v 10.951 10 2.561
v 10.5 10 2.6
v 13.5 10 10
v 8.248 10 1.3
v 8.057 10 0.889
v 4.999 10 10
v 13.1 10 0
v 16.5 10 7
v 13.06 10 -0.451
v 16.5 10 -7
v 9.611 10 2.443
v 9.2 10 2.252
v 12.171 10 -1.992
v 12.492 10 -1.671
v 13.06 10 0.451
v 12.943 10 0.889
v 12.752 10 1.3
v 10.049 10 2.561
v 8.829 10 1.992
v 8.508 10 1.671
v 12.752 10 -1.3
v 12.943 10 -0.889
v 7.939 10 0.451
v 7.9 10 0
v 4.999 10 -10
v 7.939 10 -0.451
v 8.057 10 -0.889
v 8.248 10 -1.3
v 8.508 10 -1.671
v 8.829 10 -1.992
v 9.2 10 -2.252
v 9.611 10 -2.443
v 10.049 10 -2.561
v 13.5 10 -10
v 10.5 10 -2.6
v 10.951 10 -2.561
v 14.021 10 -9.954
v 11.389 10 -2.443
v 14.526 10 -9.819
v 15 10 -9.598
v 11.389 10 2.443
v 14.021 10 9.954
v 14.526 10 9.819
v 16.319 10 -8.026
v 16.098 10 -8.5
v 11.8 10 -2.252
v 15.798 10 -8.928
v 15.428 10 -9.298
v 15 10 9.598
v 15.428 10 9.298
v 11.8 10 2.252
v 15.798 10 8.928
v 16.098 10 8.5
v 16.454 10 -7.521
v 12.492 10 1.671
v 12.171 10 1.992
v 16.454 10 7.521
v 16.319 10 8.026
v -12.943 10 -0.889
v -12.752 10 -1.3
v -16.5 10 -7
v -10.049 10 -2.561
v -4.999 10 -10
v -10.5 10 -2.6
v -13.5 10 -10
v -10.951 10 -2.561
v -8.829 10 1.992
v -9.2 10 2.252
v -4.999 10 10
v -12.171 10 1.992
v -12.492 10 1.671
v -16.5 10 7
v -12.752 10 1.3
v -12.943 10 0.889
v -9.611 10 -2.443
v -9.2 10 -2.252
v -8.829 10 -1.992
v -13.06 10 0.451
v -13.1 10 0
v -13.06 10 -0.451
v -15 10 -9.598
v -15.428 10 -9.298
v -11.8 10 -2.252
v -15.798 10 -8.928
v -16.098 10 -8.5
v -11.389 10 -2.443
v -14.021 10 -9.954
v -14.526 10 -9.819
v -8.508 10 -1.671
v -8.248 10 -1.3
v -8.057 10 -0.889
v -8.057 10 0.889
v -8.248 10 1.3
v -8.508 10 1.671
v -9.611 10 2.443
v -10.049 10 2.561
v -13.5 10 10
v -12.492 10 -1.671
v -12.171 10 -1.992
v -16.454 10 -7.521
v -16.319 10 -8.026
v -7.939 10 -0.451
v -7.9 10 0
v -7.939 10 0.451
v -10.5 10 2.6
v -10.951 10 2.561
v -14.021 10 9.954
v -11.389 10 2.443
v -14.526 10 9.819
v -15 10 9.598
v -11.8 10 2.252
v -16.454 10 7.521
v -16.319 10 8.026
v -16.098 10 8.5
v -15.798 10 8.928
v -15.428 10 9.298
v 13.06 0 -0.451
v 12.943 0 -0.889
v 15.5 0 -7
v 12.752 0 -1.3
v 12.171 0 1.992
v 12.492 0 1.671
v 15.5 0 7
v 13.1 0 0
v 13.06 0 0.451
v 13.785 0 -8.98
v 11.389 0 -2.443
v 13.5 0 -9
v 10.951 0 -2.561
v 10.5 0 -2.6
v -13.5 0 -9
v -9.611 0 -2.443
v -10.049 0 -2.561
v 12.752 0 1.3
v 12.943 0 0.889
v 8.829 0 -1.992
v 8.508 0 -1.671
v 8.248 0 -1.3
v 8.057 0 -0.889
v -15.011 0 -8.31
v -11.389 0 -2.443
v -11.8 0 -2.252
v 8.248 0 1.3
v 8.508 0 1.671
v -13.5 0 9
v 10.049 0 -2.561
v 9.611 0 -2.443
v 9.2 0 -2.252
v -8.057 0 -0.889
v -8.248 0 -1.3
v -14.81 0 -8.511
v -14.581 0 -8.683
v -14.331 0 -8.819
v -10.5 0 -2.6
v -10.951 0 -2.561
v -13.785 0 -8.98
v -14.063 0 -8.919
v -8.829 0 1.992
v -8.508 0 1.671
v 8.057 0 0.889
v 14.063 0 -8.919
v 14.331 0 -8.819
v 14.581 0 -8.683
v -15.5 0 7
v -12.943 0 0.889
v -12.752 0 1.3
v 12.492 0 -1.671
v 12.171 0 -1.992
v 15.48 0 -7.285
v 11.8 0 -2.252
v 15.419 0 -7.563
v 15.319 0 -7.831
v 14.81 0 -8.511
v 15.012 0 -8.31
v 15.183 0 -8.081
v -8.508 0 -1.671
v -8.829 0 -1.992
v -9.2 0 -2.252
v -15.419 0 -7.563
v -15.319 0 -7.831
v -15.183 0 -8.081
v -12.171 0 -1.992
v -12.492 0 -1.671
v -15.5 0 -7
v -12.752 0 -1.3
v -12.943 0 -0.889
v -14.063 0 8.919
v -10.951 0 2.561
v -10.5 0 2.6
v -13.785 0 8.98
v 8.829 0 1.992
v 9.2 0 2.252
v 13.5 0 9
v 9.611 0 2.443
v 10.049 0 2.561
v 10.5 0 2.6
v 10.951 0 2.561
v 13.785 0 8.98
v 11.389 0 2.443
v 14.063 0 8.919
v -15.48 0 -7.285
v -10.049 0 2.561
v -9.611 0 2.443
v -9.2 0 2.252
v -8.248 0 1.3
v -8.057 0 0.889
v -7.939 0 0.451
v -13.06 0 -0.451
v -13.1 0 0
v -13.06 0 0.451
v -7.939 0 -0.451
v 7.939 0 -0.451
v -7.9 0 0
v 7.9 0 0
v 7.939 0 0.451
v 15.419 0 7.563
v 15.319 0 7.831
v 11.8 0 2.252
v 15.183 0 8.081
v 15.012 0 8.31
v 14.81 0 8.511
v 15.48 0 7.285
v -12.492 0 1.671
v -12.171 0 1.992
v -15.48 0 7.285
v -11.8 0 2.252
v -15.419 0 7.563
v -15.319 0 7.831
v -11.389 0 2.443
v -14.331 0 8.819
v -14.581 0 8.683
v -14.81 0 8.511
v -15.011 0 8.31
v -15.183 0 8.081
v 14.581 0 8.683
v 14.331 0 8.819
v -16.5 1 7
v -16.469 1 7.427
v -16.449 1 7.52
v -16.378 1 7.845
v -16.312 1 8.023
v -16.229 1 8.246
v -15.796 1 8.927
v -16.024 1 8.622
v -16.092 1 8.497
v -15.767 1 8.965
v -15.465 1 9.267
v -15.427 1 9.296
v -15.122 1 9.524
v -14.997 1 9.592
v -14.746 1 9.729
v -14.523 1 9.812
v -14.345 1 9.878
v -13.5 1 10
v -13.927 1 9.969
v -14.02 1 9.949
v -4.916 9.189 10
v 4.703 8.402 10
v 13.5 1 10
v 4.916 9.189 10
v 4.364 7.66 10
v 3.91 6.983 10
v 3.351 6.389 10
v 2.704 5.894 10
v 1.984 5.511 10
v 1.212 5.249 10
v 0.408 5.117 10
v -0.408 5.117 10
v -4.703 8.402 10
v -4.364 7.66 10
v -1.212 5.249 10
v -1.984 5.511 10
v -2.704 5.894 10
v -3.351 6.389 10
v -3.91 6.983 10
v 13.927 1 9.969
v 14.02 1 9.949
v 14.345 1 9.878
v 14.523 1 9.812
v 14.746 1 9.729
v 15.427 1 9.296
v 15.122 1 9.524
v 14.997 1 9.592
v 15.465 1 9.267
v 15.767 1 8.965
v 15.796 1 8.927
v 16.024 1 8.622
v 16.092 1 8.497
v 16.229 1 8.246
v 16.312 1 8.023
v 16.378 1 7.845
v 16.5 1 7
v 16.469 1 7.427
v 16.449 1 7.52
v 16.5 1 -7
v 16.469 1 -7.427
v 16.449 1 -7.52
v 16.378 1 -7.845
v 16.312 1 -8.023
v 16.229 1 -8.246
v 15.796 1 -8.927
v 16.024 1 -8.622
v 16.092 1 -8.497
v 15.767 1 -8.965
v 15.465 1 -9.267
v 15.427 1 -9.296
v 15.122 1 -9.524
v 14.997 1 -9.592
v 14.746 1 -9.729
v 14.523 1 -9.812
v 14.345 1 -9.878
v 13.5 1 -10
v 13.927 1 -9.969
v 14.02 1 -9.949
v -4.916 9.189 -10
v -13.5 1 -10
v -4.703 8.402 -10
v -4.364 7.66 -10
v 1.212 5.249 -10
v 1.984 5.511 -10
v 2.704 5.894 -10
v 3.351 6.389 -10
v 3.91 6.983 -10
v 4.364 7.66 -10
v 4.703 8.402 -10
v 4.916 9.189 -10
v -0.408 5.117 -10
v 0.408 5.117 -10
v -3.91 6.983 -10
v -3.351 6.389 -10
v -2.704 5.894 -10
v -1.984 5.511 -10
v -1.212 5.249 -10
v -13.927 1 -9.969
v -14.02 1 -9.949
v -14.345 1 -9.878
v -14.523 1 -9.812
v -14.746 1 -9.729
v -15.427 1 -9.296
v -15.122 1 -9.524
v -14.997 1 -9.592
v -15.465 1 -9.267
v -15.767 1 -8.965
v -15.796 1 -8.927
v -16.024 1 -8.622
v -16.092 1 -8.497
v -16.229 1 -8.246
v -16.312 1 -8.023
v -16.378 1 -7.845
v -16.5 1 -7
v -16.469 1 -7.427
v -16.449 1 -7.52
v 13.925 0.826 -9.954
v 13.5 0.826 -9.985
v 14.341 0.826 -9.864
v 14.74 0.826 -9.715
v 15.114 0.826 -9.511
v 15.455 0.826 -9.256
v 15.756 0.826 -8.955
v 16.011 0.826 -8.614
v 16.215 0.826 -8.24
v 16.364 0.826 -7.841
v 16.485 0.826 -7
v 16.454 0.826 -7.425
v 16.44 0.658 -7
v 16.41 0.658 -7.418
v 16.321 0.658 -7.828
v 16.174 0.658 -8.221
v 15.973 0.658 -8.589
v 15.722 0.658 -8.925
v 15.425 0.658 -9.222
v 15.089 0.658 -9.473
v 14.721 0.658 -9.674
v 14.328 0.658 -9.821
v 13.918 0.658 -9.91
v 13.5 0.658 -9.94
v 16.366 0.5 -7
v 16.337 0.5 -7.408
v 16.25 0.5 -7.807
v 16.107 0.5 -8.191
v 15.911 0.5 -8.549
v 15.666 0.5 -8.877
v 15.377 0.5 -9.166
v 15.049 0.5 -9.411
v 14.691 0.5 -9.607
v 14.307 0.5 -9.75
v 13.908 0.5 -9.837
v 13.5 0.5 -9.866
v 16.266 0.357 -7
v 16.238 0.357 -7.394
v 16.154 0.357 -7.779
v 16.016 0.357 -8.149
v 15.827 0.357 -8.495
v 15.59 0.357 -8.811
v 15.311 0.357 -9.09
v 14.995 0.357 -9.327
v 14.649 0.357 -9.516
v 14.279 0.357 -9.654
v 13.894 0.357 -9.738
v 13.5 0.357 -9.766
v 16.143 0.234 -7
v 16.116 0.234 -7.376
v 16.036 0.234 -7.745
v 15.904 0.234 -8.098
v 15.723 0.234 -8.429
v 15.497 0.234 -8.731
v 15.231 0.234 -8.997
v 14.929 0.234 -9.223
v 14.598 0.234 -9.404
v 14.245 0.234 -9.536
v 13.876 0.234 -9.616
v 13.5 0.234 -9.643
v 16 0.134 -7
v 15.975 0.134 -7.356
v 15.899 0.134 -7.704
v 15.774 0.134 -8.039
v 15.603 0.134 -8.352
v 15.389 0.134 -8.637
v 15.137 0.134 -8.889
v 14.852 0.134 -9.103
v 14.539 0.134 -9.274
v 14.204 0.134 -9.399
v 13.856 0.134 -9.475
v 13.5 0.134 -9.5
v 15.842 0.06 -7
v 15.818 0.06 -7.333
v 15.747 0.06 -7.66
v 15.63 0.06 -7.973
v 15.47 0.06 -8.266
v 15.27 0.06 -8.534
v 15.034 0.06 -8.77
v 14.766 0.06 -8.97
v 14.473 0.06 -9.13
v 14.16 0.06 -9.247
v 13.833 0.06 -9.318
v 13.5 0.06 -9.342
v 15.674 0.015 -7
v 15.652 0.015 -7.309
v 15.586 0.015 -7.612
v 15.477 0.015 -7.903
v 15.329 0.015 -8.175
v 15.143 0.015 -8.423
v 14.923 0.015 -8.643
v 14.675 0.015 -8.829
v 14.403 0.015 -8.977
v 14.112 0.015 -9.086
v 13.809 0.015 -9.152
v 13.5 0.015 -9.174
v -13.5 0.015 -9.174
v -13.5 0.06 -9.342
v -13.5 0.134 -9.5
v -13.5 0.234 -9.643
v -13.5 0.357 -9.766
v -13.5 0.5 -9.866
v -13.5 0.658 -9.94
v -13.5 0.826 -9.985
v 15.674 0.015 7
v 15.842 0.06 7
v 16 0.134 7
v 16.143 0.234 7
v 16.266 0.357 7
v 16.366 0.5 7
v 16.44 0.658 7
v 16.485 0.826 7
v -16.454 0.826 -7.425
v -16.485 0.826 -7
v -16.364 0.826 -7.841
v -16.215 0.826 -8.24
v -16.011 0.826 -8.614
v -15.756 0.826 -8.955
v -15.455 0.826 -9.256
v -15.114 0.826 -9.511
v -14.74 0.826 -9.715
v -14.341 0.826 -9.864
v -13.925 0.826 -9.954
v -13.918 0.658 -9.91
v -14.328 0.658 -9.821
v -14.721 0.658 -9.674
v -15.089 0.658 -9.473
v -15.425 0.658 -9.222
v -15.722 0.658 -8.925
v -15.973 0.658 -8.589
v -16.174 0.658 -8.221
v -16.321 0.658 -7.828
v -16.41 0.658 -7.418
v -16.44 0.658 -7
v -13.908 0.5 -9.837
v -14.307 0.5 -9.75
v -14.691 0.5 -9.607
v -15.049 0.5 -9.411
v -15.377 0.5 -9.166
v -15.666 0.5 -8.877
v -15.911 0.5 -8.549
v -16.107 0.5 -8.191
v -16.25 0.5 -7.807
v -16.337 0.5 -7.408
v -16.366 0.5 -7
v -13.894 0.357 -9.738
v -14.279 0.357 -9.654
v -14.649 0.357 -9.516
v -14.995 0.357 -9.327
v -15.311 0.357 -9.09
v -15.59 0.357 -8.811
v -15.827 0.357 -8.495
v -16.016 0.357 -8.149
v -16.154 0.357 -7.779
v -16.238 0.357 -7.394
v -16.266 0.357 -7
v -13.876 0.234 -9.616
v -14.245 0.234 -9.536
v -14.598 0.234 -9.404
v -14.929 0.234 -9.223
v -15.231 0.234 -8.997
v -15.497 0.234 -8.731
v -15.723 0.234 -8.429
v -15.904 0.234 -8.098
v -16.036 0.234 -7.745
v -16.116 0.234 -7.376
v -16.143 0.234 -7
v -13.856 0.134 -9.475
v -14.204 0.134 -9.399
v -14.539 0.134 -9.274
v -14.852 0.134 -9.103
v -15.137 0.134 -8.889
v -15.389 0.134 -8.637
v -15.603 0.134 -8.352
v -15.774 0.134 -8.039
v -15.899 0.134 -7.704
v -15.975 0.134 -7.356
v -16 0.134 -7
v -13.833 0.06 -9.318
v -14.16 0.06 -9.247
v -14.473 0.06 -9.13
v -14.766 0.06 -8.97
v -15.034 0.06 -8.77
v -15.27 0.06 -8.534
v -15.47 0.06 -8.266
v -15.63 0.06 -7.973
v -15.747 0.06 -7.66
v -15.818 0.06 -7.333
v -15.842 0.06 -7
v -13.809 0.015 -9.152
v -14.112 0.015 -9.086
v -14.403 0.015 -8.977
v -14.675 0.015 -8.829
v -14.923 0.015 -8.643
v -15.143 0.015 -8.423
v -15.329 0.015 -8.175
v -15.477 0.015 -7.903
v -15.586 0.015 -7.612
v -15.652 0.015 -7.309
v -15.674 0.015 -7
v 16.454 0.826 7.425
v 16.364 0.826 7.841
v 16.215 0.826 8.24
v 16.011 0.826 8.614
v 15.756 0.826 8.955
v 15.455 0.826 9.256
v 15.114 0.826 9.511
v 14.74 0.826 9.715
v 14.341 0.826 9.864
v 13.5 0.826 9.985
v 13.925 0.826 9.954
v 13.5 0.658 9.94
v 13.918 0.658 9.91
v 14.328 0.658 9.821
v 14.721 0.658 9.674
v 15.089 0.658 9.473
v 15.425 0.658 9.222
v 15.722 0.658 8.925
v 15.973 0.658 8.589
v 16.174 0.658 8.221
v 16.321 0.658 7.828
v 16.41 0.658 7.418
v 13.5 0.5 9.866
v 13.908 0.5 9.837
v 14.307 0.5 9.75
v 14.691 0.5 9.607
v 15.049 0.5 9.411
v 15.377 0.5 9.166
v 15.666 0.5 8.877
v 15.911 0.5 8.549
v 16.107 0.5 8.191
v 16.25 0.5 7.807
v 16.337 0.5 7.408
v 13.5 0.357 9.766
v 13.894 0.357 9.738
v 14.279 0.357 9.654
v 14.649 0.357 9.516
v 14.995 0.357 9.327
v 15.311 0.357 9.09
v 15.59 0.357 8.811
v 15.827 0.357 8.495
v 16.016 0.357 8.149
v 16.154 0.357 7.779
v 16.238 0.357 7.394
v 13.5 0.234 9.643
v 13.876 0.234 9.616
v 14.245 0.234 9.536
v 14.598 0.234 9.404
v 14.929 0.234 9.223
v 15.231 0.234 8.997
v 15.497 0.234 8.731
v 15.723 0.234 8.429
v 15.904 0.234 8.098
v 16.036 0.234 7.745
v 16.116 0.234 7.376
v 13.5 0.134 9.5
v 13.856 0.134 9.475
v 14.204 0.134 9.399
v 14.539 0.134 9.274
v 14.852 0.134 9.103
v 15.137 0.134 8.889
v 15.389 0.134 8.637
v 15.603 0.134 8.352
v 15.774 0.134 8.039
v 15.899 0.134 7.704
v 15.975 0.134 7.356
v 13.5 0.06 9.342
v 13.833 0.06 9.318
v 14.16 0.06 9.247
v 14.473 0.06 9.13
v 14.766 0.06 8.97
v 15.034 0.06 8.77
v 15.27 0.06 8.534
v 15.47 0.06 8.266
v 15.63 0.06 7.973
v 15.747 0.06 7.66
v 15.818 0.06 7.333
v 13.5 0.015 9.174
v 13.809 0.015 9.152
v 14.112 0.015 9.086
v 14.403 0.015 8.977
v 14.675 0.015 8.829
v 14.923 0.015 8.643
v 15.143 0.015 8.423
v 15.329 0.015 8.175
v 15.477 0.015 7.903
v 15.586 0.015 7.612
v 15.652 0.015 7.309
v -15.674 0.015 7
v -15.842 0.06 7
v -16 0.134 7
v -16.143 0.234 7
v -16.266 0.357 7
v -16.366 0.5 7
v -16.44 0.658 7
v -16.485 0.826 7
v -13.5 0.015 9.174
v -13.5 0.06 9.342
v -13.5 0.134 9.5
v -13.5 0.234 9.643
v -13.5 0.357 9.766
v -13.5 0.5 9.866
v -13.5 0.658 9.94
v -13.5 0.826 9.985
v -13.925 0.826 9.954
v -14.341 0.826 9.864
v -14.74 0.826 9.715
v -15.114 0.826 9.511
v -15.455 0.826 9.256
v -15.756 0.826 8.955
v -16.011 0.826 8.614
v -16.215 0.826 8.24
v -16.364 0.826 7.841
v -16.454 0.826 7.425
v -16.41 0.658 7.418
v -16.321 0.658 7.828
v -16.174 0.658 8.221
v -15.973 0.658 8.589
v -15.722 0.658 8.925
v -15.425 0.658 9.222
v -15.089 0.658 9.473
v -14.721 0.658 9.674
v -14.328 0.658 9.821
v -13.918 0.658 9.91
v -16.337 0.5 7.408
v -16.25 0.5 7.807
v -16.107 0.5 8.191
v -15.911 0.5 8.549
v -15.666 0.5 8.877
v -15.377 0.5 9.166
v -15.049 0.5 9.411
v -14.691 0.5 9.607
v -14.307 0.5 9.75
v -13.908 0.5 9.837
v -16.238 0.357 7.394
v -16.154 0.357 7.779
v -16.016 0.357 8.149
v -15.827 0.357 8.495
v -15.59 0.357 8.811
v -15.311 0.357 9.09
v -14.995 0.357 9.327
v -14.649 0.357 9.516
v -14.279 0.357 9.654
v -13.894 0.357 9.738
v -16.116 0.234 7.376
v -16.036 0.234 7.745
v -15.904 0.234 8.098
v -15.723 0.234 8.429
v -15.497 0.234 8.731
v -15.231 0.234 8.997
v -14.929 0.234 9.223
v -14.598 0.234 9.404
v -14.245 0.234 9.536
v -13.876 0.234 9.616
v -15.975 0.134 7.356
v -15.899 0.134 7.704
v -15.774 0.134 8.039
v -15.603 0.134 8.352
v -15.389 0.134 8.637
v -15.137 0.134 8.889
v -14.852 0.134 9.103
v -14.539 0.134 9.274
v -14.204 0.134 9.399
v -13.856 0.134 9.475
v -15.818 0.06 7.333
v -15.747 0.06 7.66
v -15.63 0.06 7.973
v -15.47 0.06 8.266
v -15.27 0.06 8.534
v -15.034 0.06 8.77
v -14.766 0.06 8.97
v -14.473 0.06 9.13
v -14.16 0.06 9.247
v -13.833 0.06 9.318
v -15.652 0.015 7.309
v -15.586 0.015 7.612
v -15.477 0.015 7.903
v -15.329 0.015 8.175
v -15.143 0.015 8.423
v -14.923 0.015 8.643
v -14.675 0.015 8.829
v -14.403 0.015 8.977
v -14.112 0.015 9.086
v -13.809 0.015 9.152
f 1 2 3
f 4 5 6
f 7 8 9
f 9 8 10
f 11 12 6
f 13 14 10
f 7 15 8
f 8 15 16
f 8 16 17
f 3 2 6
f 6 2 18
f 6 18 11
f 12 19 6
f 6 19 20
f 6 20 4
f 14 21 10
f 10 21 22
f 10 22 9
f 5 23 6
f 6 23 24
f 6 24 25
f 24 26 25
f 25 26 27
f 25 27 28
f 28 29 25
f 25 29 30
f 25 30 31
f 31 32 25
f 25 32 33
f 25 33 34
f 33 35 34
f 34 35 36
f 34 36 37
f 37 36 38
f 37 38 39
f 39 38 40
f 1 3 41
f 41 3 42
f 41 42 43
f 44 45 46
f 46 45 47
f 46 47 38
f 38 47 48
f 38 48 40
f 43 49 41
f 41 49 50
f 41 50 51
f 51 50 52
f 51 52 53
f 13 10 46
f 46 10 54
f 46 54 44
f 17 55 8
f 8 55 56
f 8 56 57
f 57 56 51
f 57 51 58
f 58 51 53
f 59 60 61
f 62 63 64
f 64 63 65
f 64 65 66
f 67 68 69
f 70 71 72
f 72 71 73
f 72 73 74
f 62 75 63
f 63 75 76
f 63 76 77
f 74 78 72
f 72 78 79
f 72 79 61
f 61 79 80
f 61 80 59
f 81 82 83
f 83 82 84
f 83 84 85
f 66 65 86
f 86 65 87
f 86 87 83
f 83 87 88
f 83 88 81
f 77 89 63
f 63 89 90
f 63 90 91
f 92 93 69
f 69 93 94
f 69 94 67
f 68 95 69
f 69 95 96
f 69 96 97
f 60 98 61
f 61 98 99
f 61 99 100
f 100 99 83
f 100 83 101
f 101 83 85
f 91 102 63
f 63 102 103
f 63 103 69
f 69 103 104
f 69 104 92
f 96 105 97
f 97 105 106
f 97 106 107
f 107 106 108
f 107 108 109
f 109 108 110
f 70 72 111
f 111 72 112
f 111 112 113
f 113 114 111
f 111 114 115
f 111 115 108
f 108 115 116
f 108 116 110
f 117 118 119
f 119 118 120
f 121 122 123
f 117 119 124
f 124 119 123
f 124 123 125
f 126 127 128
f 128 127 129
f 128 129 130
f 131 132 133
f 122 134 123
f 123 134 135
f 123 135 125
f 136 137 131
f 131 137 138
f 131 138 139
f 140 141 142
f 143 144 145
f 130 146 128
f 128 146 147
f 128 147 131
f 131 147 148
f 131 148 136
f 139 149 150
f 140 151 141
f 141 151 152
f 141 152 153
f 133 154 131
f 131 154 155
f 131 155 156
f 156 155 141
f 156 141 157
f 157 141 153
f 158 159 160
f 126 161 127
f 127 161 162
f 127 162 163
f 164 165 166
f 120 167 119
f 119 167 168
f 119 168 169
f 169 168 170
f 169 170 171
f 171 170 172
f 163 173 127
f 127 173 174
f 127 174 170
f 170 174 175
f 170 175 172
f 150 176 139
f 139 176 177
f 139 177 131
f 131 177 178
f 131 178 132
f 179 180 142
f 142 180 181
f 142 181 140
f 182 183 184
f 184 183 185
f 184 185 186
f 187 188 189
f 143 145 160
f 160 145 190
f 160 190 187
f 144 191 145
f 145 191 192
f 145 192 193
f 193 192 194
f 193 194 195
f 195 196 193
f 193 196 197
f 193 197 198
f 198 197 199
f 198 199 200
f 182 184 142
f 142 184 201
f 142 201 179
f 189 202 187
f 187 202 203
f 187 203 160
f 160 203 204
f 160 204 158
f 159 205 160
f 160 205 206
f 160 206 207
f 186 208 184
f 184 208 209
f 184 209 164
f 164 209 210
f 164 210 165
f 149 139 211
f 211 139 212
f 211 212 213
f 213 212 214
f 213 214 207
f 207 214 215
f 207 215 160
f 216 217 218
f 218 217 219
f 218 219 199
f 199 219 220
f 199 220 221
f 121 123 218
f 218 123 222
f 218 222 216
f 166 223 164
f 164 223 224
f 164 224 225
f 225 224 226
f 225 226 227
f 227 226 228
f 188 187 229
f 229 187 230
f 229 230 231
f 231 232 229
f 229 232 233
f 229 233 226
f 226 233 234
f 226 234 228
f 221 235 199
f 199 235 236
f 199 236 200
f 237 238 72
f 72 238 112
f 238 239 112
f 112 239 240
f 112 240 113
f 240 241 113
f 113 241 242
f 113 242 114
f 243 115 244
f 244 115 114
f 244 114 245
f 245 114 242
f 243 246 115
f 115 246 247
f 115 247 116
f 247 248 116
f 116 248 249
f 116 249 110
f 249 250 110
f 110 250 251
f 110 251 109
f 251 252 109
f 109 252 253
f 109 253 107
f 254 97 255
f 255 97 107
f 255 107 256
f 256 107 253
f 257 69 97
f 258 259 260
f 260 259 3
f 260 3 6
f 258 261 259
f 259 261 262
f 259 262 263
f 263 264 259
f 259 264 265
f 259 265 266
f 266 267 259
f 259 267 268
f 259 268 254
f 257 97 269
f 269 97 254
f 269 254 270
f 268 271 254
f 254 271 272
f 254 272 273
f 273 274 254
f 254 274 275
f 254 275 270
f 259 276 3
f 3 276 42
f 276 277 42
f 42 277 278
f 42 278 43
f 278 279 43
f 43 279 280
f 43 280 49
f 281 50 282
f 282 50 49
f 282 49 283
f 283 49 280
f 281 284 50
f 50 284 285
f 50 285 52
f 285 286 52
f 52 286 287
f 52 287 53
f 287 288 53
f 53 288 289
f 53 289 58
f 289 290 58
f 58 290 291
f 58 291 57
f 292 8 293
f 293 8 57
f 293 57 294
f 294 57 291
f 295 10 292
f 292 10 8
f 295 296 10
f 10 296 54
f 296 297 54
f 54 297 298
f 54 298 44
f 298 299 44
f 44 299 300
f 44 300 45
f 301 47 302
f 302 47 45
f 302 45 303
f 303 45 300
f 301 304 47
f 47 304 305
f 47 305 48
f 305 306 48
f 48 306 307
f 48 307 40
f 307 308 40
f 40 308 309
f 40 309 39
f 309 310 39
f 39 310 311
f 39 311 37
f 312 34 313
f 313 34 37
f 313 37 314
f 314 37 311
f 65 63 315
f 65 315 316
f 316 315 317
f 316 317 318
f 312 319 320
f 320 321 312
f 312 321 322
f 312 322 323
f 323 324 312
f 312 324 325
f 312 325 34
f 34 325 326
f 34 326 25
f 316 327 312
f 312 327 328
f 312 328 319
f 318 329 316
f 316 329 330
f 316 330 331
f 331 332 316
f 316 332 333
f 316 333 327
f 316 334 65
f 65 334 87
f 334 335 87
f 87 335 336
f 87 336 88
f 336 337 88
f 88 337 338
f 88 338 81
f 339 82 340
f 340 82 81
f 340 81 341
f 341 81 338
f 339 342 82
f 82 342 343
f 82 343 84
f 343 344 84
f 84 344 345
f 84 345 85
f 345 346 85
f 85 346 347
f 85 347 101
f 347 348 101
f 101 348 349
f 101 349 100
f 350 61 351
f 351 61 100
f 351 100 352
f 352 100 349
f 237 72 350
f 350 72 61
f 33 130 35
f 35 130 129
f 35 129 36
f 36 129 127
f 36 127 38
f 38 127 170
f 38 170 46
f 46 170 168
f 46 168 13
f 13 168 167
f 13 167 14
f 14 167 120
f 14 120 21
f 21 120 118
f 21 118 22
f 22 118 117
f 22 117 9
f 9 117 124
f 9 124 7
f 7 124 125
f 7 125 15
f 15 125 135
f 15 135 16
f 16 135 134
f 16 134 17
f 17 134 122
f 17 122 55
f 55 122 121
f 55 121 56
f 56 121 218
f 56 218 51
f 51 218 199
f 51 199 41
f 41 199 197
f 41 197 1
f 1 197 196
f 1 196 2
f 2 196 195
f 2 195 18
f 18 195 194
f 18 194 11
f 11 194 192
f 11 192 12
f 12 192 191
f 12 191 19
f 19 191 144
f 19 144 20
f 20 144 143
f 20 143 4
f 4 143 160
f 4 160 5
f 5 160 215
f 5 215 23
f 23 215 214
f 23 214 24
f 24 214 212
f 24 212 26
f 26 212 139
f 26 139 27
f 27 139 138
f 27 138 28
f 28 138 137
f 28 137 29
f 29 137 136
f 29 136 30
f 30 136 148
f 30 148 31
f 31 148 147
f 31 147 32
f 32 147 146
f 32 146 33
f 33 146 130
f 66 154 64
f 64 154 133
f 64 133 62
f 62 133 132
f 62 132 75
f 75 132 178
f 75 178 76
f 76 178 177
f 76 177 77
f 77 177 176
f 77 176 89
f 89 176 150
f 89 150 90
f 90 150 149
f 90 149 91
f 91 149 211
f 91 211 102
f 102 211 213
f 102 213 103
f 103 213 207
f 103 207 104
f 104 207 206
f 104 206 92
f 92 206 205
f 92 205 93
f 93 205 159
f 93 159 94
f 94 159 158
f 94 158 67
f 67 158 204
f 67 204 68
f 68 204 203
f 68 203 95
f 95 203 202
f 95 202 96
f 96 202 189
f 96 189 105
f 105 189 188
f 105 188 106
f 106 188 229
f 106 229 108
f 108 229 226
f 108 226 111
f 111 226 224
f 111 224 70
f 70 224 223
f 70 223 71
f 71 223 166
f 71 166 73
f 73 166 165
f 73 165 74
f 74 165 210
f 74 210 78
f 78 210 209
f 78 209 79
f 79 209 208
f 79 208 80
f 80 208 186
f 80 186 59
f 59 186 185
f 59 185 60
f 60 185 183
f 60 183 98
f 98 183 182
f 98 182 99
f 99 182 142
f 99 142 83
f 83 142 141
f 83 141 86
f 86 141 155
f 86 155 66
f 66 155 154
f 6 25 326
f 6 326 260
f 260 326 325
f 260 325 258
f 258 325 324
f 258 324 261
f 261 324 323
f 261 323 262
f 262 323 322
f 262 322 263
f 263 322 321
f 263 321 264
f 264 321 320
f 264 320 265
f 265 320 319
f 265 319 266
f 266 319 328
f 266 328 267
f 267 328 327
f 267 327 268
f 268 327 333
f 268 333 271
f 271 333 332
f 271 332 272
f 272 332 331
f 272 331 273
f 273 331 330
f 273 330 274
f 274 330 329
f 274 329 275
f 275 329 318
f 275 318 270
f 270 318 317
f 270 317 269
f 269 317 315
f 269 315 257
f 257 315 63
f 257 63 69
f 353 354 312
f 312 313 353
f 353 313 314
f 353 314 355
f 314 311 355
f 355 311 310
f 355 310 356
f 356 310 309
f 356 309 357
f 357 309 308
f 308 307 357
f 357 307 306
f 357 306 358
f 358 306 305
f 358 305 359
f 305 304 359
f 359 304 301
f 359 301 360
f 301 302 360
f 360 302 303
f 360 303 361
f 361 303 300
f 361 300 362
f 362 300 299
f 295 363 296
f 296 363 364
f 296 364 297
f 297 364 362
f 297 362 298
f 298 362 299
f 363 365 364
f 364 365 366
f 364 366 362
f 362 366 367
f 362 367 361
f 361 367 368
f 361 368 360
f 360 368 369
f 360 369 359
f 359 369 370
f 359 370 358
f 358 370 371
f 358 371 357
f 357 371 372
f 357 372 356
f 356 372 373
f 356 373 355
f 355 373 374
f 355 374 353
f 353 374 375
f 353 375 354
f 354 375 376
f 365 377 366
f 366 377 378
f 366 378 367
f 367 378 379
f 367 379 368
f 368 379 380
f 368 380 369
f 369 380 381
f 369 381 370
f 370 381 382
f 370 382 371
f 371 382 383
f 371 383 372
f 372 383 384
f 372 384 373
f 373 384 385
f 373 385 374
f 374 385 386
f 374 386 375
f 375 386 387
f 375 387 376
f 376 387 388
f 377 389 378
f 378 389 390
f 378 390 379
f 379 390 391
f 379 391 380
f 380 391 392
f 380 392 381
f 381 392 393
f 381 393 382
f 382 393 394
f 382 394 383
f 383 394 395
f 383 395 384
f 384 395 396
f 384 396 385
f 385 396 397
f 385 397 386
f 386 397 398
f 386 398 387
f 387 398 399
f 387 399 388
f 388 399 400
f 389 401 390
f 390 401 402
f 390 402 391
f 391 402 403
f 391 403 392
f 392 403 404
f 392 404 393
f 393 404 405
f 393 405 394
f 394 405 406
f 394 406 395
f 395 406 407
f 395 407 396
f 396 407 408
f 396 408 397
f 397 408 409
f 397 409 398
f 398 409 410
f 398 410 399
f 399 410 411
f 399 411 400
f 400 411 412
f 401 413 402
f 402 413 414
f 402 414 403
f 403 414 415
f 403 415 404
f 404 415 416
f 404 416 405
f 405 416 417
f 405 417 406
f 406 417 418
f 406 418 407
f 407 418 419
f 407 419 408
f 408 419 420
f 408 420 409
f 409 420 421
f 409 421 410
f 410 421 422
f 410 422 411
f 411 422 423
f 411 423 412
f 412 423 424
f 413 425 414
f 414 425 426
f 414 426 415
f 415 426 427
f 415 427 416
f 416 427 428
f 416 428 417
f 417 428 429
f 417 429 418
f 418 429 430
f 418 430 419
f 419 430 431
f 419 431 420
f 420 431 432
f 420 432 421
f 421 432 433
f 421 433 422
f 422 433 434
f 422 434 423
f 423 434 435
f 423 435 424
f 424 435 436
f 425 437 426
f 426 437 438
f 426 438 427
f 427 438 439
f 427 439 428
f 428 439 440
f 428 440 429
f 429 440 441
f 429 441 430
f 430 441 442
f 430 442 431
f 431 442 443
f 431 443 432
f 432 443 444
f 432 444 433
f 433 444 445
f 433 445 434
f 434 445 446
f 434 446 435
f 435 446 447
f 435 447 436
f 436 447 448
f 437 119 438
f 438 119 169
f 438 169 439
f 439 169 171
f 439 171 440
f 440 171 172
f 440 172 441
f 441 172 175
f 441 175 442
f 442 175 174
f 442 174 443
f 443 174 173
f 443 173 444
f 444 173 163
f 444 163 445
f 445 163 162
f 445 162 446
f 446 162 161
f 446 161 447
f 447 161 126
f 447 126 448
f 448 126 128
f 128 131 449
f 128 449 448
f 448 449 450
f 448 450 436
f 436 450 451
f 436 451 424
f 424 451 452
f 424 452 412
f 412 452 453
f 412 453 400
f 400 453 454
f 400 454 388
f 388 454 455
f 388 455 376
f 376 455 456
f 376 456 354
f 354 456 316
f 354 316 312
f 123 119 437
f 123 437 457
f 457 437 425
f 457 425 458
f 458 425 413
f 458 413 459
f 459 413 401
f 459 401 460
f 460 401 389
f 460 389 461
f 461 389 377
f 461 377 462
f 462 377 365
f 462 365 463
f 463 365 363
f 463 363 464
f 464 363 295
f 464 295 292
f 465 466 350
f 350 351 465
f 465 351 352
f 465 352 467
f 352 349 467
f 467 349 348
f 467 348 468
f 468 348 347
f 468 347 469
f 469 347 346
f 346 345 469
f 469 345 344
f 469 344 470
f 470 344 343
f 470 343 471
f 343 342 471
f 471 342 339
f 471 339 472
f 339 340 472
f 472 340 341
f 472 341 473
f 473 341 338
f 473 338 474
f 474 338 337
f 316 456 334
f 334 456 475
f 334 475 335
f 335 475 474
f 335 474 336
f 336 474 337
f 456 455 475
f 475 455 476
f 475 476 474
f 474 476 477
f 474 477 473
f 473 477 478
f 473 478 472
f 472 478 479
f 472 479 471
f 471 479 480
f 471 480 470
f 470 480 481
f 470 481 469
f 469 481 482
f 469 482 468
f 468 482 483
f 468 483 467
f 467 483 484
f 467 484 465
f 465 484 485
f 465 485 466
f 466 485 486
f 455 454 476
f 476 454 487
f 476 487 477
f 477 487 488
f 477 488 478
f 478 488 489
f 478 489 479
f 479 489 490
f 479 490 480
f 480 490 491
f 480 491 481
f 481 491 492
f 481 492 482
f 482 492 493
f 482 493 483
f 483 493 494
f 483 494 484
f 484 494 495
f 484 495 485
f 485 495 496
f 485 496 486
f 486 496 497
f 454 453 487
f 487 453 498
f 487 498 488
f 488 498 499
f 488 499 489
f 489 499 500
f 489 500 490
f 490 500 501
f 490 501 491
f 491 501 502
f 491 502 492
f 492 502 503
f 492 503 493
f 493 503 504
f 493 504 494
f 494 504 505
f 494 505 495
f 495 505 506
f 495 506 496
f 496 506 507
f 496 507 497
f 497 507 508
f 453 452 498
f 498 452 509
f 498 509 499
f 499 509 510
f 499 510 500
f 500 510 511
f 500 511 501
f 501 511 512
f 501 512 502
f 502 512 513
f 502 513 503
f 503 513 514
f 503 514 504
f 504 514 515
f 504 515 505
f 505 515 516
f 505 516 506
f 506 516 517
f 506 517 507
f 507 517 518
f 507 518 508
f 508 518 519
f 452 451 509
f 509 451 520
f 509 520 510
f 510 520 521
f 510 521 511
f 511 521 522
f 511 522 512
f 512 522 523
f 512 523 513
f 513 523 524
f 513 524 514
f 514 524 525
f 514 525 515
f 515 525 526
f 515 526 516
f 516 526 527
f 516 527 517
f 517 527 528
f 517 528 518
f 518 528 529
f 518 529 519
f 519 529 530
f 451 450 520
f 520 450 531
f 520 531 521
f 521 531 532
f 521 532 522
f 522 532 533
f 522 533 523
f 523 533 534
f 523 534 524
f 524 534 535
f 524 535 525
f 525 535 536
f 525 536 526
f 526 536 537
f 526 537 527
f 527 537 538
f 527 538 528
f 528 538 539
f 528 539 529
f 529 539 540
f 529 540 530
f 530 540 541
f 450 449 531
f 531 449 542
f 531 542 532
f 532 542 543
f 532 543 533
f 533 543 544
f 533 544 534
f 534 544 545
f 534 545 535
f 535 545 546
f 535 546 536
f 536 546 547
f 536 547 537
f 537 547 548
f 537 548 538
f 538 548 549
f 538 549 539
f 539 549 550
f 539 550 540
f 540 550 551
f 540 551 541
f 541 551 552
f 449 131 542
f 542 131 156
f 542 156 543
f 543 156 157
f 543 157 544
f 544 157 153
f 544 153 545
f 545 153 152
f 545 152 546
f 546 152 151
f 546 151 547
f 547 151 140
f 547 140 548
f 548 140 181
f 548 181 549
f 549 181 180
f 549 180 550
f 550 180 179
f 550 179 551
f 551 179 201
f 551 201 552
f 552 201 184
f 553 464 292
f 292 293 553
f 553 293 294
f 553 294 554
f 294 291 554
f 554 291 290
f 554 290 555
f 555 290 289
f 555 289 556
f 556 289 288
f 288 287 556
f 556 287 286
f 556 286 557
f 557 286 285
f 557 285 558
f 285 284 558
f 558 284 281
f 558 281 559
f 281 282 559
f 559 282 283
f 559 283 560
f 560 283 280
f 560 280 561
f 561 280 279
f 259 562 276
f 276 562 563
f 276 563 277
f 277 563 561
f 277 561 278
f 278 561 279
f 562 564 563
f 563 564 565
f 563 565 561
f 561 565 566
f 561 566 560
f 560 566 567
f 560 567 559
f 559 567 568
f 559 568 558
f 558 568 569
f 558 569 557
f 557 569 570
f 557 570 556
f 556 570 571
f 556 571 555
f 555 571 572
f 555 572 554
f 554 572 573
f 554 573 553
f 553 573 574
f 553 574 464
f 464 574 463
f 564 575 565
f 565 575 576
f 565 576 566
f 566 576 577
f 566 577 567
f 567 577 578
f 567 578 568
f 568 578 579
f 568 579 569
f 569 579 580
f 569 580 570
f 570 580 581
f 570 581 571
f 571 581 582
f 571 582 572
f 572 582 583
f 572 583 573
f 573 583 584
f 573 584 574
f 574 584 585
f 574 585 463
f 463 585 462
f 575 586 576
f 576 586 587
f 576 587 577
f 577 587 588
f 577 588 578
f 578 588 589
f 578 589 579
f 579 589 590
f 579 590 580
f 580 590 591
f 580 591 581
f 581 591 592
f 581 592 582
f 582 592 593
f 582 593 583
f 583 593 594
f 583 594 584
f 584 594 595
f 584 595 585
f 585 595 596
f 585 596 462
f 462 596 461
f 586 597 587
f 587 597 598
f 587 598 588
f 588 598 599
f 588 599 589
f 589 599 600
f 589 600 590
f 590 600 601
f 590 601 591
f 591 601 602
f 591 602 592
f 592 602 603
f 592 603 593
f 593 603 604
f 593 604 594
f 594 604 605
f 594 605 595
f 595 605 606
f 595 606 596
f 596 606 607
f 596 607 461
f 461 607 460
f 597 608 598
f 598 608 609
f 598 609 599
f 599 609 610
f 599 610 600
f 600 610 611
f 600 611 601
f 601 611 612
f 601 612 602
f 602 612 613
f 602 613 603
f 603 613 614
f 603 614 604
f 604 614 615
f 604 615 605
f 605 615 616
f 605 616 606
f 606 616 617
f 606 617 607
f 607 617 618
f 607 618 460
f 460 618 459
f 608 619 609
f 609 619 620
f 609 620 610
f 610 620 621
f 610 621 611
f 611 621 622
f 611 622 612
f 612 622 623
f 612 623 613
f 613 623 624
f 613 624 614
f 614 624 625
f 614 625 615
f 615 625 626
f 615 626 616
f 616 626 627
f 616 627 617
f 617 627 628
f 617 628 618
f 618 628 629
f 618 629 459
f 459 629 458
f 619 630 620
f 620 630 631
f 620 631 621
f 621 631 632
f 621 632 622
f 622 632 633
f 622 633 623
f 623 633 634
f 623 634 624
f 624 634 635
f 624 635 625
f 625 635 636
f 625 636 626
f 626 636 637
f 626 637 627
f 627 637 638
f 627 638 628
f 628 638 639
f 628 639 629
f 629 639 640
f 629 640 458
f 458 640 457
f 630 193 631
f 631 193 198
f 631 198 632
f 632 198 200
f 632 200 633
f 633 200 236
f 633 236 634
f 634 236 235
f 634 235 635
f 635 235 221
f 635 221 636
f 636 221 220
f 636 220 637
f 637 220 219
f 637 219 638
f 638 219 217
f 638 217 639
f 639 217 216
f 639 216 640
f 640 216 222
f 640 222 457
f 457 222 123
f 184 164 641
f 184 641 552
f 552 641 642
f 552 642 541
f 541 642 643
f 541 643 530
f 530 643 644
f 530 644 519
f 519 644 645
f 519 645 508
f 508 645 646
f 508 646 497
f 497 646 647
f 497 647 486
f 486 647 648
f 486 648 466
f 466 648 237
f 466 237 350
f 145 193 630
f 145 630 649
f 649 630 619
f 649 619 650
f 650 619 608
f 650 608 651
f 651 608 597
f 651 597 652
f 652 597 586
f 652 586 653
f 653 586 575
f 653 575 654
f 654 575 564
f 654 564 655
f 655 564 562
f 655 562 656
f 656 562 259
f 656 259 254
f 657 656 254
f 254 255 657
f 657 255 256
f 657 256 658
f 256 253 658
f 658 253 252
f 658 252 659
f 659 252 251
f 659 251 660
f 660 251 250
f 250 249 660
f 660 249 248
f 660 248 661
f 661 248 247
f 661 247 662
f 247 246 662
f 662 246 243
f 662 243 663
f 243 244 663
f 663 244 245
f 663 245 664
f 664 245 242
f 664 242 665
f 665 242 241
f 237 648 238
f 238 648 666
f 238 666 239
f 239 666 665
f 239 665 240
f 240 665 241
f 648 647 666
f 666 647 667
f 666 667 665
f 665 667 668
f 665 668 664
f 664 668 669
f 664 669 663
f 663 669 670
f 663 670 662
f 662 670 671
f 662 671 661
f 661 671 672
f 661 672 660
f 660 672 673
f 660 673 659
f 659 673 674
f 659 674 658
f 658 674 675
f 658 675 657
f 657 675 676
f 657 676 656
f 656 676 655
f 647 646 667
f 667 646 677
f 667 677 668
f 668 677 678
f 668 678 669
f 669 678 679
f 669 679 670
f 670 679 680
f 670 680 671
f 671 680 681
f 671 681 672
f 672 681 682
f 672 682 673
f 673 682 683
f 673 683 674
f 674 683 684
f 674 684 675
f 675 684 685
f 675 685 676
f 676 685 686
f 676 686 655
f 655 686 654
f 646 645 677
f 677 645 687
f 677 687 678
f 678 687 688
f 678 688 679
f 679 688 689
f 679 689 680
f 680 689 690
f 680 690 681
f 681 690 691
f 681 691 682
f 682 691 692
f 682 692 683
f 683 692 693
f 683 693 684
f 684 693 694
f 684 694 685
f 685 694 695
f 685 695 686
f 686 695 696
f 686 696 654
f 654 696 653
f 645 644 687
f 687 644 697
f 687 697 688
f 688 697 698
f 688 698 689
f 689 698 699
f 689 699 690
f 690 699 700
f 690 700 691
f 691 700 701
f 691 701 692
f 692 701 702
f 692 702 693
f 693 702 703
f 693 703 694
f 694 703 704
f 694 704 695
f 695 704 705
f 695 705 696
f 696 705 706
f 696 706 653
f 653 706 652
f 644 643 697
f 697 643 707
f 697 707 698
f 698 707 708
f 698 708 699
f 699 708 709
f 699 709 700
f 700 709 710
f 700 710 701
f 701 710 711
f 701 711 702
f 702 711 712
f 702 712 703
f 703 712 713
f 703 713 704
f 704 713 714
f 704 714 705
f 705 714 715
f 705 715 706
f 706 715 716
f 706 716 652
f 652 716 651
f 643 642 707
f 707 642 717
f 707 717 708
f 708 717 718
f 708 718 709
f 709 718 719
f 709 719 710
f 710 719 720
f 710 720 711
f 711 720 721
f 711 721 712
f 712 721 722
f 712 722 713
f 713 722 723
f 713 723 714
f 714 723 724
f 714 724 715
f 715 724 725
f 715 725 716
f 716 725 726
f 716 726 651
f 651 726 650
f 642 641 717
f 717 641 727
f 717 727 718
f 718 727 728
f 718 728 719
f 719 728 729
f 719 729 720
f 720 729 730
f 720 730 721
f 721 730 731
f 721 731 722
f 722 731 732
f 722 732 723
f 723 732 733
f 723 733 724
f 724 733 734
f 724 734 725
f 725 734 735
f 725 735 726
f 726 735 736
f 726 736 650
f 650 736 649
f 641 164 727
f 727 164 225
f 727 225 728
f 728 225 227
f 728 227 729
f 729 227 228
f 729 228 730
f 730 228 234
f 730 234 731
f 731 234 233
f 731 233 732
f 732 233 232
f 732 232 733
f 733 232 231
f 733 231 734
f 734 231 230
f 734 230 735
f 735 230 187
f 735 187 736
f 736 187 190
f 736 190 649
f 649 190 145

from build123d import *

# Parameters (mm, degrees)
SKETCH1_R           = 2.6
BOSS_EXTRUDE3_DEPTH = 10
SKETCH5_R           = 5
CUT_EXTRUDE3_DEPTH  = 20
FILLET2_R           = 1


with BuildPart() as part:
    # Sketch1 → Boss-Extrude3 (new body)
    with BuildSketch(Plane(origin=(0, 0, 0), x_dir=(1, 0, 0), z_dir=(0, 1, 0))):
        with BuildLine():
            Line((-13.5, -10), (13.5, -10))
            ThreePointArc((13.5, -10), (15.621320344, -9.121320344), (16.5, -7))
            Line((16.5, -7), (16.5, 7))
            ThreePointArc((16.5, 7), (15.621320344, 9.121320344), (13.5, 10))
            Line((13.5, 10), (-13.5, 10))
            ThreePointArc((-13.5, 10), (-15.621320344, 9.121320344), (-16.5, 7))
            Line((-16.5, 7), (-16.5, -7))
            ThreePointArc((-16.5, -7), (-15.621320344, -9.121320344), (-13.5, -10))
        make_face()
        with Locations(Location((10.5, 0, 0), (0, 0, 270))):
            Circle(SKETCH1_R, mode=Mode.SUBTRACT)
        with Locations(Location((-10.5, 0, 0), (0, 0, 90))):
            Circle(SKETCH1_R, mode=Mode.SUBTRACT)
    extrude(amount=BOSS_EXTRUDE3_DEPTH)

    # Sketch5 → Cut-Extrude3 (cut)
    with BuildSketch(Plane(origin=(0, 0, -10), x_dir=(-1, 0, 0), z_dir=(0, 0, -1))):
        with Locations((0, 10.1)):
            Circle(SKETCH5_R)
    extrude(amount=-CUT_EXTRUDE3_DEPTH, mode=Mode.SUBTRACT)

    # Fillet2
    fillet2_edges = [part.edges().sort_by_distance(p)[0] for p in [
        (0, 0, 10),
        (-15.621320344, 0, 9.121320344),
        (-16.5, 0, 0),
        (-15.621320344, 0, -9.121320344),
        (0, 0, -10),
        (15.621320344, 0, -9.121320344),
        (16.5, 0, 0),
        (15.621320344, 0, 9.121320344),
    ]]
    fillet(fillet2_edges, radius=FILLET2_R)


solid = part.part
